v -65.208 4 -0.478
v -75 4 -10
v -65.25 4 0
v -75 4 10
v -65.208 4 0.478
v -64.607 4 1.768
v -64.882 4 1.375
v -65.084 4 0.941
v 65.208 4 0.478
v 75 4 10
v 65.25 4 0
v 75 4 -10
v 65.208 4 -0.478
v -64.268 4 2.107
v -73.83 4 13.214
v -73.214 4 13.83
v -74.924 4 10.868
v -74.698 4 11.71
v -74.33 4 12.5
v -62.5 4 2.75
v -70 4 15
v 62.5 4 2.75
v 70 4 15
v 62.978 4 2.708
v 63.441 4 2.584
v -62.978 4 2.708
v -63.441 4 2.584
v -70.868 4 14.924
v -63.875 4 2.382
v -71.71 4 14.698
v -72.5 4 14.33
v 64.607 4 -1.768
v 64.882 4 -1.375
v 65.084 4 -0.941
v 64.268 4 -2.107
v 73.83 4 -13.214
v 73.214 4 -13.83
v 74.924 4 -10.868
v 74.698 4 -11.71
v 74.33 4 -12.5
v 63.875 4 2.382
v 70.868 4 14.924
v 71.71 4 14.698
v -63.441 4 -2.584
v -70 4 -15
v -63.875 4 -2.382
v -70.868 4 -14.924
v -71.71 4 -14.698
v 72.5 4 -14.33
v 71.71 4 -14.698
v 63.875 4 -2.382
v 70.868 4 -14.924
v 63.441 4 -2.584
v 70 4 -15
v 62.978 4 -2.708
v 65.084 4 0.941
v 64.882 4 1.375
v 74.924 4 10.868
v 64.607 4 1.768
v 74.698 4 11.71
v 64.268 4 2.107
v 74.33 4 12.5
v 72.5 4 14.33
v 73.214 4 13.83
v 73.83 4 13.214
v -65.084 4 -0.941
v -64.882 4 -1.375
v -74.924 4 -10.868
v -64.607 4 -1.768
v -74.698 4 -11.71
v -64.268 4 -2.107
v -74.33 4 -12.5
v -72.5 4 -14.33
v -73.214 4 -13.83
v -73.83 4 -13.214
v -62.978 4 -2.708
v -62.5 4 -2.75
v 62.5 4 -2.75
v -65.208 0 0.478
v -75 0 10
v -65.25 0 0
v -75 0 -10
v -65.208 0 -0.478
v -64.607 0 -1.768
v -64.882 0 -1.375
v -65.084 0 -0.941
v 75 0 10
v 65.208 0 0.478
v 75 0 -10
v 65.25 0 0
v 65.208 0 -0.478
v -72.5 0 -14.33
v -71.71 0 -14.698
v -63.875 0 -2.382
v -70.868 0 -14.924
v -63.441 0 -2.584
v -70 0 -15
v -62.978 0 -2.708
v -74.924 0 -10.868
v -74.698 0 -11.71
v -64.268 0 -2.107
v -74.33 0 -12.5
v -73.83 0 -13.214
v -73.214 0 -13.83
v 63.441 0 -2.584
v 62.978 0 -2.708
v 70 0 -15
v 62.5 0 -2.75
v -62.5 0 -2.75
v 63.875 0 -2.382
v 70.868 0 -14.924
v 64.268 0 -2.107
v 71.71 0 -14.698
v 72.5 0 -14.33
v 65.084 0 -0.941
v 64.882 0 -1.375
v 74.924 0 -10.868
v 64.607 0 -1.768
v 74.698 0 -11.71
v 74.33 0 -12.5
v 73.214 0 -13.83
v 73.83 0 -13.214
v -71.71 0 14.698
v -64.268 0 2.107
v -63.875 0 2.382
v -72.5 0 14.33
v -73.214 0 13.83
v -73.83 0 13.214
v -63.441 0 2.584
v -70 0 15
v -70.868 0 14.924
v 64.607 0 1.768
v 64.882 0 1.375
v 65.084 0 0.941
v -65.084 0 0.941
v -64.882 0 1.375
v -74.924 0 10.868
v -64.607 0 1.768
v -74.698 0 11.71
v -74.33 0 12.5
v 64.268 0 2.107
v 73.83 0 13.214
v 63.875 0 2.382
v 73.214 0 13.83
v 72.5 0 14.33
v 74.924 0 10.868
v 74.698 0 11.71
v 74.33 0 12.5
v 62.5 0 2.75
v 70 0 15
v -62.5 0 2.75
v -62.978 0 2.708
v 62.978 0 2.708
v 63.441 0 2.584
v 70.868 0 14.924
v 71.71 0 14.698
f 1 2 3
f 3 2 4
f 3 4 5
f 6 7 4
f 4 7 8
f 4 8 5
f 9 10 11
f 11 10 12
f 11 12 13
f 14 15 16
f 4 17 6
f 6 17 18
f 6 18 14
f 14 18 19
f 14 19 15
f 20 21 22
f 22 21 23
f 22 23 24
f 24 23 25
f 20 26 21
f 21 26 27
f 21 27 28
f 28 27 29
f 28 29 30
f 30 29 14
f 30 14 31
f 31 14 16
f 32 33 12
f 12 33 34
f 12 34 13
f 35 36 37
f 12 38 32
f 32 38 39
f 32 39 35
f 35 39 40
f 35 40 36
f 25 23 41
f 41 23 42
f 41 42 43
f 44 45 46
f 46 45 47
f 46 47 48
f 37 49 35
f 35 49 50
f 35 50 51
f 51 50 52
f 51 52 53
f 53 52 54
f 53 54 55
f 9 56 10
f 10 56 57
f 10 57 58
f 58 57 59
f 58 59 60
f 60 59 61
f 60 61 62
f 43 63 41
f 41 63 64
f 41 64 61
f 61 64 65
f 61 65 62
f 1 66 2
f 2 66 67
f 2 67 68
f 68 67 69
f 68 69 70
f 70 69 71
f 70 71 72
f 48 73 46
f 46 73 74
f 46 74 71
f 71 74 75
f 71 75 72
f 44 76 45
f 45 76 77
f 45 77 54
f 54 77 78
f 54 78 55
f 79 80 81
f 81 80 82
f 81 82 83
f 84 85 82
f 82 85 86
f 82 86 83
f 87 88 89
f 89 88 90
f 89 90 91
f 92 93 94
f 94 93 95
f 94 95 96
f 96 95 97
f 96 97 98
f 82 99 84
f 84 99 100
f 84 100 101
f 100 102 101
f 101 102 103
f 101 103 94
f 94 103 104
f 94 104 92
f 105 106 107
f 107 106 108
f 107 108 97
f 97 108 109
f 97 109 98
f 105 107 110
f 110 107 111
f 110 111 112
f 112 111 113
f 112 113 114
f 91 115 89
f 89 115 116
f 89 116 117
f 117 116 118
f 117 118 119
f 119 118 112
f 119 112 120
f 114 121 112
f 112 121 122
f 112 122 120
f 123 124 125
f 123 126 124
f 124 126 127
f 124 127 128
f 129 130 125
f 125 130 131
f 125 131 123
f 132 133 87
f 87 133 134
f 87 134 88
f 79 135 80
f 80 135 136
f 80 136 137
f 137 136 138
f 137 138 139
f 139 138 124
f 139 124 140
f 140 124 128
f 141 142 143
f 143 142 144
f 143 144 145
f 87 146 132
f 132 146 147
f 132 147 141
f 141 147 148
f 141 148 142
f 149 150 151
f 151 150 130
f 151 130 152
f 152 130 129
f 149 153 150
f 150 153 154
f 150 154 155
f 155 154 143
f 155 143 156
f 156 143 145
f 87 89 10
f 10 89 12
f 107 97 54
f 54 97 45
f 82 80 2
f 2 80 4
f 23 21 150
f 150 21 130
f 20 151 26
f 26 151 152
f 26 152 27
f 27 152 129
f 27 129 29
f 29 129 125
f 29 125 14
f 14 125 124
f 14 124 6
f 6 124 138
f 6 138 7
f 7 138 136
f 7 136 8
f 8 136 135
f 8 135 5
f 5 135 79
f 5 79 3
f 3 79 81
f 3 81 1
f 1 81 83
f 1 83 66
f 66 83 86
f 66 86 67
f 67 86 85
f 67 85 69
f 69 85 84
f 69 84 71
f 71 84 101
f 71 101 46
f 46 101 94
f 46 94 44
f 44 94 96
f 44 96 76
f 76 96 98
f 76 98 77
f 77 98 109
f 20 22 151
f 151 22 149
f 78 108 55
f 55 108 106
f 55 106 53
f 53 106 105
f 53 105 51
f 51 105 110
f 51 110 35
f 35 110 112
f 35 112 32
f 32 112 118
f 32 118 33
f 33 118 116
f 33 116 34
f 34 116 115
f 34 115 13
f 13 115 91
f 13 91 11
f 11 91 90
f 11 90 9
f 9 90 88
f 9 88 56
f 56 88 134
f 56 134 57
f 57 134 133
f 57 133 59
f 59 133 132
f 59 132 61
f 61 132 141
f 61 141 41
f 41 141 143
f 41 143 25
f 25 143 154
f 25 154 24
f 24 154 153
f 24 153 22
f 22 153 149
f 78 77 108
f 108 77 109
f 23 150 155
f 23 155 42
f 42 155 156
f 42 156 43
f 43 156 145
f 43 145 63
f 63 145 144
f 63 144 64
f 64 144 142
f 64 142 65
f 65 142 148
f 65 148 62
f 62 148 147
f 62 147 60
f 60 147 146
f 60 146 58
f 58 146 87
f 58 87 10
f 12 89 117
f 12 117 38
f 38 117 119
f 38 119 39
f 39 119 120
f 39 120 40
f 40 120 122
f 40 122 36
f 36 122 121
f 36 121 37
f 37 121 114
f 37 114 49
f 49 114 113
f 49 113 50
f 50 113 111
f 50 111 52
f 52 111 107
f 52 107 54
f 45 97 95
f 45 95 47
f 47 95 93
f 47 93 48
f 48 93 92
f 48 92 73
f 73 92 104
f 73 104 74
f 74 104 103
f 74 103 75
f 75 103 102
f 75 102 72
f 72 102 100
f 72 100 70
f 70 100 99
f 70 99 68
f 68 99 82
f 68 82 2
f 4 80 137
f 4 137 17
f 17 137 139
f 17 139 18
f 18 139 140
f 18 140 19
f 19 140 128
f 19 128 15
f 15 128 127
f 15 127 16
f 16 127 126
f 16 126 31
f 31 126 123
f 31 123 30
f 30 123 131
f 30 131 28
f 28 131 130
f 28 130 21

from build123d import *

# Parameters (mm, degrees)
SKETCH1_W           = 150
SKETCH1_H           = 30
BOSS_EXTRUDE1_DEPTH = 4
FILLET1_R           = 5


with BuildPart() as part:
    # Sketch1 → Boss-Extrude1 (new body)
    with BuildSketch(Plane(origin=(0, 0, 0), x_dir=(1, 0, 0), z_dir=(0, 1, 0))):
        Rectangle(SKETCH1_W, SKETCH1_H)
        with BuildLine():
            Line((-62.5, 2.75), (62.5, 2.75))
            ThreePointArc((62.5, 2.75), (65.25, 0), (62.5, -2.75))
            Line((62.5, -2.75), (-62.5, -2.75))
            ThreePointArc((-62.5, -2.75), (-65.25, 0), (-62.5, 2.75))
        make_face(mode=Mode.SUBTRACT)
    extrude(amount=BOSS_EXTRUDE1_DEPTH)

    # Fillet1
    fillet1_edges = [part.edges().sort_by_distance(p)[0] for p in [
        (75, 2, 15),
        (-75, 2, 15),
        (-75, 2, -15),
        (75, 2, -15),
    ]]
    fillet(fillet1_edges, radius=FILLET1_R)


solid = part.part
